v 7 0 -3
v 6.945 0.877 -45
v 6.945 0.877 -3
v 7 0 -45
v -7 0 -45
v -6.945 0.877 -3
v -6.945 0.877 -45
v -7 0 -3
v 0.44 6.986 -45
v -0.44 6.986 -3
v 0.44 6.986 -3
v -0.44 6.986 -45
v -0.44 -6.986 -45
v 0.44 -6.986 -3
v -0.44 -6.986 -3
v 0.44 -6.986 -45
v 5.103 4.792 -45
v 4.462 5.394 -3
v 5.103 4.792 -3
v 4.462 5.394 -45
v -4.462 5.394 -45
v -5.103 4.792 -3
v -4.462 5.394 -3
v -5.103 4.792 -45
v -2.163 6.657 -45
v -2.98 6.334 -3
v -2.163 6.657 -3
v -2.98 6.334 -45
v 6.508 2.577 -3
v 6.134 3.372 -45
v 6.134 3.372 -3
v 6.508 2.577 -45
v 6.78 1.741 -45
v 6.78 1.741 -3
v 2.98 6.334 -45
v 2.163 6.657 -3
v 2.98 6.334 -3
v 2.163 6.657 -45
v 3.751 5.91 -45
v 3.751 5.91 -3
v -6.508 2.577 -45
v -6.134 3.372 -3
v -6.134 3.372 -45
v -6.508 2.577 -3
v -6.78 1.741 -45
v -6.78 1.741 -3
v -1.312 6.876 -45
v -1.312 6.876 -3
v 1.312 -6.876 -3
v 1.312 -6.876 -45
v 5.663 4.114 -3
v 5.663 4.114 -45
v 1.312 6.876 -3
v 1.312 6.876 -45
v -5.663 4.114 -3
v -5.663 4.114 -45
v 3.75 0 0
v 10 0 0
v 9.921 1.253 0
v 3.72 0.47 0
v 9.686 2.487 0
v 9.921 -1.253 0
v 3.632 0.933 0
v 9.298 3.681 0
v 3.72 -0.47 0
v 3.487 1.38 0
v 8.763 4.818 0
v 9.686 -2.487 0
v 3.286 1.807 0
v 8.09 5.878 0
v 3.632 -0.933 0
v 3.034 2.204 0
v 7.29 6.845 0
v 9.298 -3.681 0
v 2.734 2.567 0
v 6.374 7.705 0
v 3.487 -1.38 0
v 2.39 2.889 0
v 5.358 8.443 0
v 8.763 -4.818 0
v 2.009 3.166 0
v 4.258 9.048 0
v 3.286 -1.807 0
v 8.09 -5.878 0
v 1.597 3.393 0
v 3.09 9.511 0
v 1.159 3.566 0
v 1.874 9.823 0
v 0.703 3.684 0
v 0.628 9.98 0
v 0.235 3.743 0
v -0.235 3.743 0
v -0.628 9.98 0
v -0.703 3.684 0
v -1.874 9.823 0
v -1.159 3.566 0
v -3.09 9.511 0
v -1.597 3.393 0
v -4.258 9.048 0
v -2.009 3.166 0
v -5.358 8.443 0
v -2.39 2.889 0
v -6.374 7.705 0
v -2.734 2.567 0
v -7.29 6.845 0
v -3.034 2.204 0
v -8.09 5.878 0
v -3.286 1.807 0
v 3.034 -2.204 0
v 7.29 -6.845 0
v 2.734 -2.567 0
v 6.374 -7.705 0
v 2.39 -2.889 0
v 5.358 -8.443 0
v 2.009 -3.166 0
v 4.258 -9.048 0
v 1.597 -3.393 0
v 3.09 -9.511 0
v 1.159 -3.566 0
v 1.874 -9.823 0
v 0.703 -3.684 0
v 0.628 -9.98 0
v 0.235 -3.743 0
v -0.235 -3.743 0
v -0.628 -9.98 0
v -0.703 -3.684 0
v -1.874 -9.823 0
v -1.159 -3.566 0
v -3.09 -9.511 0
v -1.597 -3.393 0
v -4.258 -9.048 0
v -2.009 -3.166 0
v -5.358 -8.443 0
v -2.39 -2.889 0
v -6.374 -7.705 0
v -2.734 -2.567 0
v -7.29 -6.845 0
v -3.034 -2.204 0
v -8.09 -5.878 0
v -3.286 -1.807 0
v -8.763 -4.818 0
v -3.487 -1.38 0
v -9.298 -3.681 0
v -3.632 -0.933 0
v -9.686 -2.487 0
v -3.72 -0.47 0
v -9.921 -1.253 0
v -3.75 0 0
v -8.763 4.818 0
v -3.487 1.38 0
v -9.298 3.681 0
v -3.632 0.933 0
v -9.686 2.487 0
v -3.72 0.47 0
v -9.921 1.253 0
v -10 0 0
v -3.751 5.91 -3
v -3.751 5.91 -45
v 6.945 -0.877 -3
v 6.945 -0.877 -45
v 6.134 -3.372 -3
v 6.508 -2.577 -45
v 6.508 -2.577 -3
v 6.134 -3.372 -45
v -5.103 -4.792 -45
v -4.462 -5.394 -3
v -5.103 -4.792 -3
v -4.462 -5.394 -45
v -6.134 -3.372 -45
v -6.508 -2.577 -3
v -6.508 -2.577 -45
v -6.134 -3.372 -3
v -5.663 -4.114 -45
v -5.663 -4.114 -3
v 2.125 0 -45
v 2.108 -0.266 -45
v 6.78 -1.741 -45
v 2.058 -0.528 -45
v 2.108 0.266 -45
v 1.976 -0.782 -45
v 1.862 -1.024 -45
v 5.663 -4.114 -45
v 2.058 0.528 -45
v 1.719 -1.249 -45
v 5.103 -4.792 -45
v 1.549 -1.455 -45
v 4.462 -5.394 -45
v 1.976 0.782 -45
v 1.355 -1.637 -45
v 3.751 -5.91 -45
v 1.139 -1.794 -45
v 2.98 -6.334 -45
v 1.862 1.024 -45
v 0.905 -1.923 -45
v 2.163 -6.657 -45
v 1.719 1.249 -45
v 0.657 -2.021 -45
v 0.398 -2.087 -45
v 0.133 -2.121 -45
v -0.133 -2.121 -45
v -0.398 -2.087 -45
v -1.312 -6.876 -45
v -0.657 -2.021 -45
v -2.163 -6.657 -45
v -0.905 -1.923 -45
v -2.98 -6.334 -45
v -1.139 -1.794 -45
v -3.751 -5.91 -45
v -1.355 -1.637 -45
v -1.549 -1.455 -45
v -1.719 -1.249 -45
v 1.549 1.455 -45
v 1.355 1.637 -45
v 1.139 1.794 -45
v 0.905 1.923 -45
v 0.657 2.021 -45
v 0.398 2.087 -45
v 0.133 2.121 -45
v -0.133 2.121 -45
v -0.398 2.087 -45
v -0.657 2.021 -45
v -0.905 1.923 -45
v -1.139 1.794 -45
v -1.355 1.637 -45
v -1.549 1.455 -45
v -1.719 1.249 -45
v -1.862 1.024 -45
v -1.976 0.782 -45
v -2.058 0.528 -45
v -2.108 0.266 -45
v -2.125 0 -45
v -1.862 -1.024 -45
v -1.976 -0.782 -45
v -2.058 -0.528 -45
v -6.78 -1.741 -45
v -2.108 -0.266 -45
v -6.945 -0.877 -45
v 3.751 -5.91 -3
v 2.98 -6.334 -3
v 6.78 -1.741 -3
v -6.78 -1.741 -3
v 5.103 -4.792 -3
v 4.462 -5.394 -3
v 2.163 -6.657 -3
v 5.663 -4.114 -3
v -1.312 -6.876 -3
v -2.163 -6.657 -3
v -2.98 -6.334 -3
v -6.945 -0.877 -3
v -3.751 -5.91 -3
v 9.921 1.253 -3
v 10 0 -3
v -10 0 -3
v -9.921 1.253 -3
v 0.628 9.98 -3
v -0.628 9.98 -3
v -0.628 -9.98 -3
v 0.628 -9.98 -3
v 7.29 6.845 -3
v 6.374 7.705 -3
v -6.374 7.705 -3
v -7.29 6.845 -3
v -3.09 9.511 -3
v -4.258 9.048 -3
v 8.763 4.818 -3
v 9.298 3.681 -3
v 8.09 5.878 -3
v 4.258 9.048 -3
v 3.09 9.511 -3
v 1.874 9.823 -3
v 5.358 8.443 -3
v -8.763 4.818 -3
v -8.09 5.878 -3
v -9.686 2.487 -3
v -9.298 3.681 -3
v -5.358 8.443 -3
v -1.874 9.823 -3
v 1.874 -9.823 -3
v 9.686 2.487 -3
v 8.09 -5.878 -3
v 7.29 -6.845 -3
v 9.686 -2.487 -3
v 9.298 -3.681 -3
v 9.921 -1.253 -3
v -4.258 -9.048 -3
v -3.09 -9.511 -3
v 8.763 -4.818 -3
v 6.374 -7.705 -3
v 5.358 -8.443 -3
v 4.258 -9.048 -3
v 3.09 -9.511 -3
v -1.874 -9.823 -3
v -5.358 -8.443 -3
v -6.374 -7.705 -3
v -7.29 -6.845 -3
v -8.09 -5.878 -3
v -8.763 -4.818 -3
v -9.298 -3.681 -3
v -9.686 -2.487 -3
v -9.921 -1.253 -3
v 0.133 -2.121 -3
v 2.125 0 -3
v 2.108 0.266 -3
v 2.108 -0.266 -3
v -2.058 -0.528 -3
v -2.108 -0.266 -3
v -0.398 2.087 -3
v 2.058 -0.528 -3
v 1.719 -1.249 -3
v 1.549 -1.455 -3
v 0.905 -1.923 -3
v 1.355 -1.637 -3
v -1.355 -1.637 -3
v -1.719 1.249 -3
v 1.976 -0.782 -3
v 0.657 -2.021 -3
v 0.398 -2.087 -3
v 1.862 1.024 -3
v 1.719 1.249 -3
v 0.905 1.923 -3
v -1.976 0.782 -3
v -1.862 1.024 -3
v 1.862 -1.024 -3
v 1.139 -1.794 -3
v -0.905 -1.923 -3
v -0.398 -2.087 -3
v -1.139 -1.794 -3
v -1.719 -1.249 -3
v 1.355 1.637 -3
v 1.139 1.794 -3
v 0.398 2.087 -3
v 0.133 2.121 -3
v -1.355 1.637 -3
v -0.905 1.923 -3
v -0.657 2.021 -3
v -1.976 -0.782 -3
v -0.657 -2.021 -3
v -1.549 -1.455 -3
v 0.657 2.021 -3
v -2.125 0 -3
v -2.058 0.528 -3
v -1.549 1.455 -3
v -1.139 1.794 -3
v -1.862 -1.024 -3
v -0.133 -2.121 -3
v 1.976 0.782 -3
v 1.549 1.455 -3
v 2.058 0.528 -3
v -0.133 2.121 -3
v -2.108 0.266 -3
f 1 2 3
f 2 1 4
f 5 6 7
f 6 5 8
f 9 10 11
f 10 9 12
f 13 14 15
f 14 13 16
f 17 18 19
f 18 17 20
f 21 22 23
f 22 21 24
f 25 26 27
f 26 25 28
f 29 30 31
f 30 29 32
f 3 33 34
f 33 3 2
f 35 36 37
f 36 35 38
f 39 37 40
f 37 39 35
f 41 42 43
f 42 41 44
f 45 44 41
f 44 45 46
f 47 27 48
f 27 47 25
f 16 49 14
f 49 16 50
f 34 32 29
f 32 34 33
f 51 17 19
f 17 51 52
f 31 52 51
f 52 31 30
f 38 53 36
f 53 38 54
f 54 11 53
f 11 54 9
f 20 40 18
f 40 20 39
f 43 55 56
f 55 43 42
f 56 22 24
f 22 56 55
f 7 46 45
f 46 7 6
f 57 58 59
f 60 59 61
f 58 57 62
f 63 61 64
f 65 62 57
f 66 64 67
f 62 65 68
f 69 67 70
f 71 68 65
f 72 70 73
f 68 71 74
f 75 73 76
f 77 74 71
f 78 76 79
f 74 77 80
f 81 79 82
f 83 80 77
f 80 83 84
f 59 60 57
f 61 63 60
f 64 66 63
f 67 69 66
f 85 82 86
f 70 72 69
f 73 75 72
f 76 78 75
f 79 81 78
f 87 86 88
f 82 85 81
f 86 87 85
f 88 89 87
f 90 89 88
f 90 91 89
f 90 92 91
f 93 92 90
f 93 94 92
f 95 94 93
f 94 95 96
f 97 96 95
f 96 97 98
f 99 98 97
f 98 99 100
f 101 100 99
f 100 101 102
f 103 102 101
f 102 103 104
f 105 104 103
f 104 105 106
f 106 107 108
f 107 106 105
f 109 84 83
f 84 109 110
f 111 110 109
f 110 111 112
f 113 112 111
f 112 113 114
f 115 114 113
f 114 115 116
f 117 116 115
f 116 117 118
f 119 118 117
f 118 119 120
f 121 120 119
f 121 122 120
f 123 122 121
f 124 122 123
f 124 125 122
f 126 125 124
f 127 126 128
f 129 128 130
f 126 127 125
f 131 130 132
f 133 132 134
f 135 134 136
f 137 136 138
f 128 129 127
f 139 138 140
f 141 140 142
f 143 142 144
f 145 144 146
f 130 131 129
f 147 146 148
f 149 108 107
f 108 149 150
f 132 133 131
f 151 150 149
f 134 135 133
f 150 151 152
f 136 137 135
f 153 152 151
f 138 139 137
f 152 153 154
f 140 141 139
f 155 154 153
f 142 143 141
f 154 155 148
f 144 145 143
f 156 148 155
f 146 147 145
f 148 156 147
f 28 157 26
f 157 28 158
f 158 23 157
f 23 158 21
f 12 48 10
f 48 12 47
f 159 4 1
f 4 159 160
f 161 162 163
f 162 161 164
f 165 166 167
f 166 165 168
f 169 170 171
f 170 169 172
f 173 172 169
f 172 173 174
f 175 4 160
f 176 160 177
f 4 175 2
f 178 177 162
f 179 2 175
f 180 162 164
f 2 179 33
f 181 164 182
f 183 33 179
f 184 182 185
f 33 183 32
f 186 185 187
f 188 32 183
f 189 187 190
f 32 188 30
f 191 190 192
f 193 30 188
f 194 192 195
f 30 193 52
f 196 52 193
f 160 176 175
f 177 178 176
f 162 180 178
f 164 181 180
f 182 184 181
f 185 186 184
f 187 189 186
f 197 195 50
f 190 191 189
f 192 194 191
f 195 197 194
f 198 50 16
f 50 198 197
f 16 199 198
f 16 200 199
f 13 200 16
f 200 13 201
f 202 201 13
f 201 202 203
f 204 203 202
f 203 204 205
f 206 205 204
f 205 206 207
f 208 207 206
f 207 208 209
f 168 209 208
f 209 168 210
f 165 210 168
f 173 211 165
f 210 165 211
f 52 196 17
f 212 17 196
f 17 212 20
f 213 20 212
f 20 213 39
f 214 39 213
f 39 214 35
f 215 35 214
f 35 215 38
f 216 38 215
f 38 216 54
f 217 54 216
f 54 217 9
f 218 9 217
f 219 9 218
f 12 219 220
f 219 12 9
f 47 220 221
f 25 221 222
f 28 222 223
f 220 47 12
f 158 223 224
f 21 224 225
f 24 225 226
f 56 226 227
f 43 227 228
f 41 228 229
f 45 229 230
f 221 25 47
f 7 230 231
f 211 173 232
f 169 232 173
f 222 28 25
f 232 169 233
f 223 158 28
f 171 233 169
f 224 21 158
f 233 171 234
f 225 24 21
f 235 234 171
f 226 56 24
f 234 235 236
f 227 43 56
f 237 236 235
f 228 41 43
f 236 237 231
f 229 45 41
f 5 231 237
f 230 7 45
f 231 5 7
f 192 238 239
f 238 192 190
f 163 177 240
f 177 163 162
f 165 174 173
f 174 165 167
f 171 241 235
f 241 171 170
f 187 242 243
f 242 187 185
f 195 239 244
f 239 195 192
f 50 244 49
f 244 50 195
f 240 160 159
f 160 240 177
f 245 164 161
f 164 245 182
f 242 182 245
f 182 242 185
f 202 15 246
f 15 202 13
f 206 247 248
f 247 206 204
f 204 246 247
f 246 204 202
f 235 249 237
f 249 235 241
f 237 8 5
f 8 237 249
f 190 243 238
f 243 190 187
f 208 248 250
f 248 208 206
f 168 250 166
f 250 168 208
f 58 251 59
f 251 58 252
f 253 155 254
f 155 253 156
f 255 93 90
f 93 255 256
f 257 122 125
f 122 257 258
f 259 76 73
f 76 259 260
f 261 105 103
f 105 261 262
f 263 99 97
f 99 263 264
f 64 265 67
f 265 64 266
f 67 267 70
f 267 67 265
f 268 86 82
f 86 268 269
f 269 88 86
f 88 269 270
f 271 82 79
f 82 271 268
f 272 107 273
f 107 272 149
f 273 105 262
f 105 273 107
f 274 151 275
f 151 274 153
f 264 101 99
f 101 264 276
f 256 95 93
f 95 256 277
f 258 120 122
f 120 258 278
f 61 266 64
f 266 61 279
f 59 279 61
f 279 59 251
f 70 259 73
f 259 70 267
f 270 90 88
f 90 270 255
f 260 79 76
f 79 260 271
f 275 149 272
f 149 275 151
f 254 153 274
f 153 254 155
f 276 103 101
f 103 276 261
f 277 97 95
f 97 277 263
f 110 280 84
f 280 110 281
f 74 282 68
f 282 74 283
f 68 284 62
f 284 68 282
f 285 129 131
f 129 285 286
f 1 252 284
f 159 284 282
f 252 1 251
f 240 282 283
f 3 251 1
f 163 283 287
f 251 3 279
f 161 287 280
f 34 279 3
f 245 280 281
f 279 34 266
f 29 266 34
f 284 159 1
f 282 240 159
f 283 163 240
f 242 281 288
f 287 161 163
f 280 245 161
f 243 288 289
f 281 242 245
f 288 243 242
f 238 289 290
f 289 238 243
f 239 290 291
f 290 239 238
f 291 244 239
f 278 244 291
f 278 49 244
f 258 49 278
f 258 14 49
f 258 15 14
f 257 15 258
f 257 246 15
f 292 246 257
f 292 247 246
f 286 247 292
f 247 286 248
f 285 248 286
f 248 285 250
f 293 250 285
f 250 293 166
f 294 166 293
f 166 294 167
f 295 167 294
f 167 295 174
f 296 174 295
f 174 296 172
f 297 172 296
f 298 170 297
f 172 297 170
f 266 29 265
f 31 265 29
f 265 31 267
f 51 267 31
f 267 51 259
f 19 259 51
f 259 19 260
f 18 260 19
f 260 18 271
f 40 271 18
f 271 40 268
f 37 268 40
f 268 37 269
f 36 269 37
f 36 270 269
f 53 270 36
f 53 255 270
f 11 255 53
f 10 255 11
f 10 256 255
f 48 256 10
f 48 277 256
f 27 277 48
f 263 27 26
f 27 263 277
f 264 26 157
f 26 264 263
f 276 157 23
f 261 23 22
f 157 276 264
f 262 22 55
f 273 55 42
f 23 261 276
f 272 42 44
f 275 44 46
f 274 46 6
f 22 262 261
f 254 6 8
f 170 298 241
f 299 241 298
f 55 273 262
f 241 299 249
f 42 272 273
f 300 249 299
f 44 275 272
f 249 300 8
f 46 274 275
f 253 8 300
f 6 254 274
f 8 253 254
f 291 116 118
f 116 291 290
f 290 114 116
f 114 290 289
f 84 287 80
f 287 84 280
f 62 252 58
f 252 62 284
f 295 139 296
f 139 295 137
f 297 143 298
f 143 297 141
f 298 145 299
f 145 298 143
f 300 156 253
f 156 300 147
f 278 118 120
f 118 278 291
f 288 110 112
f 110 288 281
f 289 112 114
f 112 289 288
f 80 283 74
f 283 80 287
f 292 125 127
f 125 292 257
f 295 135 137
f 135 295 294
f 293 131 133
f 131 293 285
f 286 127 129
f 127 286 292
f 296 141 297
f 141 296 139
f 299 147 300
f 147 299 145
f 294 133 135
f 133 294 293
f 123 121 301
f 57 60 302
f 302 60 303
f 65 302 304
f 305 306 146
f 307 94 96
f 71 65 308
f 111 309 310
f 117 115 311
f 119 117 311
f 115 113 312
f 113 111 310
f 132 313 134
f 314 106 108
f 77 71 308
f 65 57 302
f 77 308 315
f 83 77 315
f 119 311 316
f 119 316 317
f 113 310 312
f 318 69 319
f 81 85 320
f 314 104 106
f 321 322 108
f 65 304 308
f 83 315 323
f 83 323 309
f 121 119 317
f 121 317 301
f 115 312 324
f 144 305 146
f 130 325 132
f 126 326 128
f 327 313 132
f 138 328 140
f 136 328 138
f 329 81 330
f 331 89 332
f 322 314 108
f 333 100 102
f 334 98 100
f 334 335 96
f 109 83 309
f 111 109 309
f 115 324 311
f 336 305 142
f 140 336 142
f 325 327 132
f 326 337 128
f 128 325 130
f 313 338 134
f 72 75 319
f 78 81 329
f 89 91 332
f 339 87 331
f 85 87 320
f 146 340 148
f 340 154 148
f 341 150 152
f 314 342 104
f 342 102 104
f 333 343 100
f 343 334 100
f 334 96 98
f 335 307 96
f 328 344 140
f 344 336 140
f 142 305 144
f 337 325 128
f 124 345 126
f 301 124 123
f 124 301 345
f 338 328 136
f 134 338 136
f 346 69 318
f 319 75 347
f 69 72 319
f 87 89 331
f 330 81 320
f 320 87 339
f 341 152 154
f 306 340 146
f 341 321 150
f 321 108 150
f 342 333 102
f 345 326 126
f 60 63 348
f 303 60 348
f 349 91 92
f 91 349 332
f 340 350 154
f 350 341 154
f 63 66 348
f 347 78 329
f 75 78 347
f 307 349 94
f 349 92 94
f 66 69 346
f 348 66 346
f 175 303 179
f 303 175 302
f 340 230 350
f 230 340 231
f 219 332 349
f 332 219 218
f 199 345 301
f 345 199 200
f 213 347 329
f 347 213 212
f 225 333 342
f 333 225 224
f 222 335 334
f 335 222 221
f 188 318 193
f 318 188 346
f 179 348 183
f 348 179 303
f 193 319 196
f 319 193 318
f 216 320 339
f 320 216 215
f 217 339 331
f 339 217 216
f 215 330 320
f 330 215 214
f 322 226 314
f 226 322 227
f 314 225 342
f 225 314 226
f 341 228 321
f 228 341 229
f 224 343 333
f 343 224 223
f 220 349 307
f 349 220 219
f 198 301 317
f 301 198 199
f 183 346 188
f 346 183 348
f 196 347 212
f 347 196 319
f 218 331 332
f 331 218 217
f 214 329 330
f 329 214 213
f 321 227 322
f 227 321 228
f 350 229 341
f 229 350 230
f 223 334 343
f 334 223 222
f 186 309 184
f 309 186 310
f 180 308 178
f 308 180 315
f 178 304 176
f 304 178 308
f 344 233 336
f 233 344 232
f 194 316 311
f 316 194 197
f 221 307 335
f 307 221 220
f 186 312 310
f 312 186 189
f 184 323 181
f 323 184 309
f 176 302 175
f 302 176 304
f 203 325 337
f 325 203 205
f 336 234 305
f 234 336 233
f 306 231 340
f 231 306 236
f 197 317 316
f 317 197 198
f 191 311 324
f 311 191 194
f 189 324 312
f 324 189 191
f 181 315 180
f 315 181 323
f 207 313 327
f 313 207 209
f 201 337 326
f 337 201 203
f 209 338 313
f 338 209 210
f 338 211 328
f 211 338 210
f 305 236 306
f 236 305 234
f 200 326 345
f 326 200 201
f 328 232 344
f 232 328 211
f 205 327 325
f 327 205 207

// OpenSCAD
$fn = 50;


difference() {
	union() {
		translate(v = [0, 0, -45.0000000000]) {
			cylinder(h = 45, r = 7.0000000000);
		}
		translate(v = [0, 0, -3.0000000000]) {
			cylinder(h = 3, r = 10.0000000000);
		}
	}
	union() {
		translate(v = [0, 0, 0]) {
			rotate(a = [0, 0, 0]) {
				difference() {
					union() {
						#translate(v = [0, 0, -45.0000000000]) {
							cylinder(h = 45, r = 2.0000000000);
						}
						#translate(v = [0, 0, -3]) {
							cylinder(h = 3, r = 7.0000000000, r1 = 2.1250000000, r2 = 3.7500000000);
						}
						#translate(v = [0, 0, -45.0000000000]) {
							cylinder(h = 45, r = 2.1250000000);
						}
						#translate(v = [0, 0, -45.0000000000]) {
							cylinder(h = 45, r = 2.0000000000);
						}
					}
					union();
				}
			}
		}
	}
}
